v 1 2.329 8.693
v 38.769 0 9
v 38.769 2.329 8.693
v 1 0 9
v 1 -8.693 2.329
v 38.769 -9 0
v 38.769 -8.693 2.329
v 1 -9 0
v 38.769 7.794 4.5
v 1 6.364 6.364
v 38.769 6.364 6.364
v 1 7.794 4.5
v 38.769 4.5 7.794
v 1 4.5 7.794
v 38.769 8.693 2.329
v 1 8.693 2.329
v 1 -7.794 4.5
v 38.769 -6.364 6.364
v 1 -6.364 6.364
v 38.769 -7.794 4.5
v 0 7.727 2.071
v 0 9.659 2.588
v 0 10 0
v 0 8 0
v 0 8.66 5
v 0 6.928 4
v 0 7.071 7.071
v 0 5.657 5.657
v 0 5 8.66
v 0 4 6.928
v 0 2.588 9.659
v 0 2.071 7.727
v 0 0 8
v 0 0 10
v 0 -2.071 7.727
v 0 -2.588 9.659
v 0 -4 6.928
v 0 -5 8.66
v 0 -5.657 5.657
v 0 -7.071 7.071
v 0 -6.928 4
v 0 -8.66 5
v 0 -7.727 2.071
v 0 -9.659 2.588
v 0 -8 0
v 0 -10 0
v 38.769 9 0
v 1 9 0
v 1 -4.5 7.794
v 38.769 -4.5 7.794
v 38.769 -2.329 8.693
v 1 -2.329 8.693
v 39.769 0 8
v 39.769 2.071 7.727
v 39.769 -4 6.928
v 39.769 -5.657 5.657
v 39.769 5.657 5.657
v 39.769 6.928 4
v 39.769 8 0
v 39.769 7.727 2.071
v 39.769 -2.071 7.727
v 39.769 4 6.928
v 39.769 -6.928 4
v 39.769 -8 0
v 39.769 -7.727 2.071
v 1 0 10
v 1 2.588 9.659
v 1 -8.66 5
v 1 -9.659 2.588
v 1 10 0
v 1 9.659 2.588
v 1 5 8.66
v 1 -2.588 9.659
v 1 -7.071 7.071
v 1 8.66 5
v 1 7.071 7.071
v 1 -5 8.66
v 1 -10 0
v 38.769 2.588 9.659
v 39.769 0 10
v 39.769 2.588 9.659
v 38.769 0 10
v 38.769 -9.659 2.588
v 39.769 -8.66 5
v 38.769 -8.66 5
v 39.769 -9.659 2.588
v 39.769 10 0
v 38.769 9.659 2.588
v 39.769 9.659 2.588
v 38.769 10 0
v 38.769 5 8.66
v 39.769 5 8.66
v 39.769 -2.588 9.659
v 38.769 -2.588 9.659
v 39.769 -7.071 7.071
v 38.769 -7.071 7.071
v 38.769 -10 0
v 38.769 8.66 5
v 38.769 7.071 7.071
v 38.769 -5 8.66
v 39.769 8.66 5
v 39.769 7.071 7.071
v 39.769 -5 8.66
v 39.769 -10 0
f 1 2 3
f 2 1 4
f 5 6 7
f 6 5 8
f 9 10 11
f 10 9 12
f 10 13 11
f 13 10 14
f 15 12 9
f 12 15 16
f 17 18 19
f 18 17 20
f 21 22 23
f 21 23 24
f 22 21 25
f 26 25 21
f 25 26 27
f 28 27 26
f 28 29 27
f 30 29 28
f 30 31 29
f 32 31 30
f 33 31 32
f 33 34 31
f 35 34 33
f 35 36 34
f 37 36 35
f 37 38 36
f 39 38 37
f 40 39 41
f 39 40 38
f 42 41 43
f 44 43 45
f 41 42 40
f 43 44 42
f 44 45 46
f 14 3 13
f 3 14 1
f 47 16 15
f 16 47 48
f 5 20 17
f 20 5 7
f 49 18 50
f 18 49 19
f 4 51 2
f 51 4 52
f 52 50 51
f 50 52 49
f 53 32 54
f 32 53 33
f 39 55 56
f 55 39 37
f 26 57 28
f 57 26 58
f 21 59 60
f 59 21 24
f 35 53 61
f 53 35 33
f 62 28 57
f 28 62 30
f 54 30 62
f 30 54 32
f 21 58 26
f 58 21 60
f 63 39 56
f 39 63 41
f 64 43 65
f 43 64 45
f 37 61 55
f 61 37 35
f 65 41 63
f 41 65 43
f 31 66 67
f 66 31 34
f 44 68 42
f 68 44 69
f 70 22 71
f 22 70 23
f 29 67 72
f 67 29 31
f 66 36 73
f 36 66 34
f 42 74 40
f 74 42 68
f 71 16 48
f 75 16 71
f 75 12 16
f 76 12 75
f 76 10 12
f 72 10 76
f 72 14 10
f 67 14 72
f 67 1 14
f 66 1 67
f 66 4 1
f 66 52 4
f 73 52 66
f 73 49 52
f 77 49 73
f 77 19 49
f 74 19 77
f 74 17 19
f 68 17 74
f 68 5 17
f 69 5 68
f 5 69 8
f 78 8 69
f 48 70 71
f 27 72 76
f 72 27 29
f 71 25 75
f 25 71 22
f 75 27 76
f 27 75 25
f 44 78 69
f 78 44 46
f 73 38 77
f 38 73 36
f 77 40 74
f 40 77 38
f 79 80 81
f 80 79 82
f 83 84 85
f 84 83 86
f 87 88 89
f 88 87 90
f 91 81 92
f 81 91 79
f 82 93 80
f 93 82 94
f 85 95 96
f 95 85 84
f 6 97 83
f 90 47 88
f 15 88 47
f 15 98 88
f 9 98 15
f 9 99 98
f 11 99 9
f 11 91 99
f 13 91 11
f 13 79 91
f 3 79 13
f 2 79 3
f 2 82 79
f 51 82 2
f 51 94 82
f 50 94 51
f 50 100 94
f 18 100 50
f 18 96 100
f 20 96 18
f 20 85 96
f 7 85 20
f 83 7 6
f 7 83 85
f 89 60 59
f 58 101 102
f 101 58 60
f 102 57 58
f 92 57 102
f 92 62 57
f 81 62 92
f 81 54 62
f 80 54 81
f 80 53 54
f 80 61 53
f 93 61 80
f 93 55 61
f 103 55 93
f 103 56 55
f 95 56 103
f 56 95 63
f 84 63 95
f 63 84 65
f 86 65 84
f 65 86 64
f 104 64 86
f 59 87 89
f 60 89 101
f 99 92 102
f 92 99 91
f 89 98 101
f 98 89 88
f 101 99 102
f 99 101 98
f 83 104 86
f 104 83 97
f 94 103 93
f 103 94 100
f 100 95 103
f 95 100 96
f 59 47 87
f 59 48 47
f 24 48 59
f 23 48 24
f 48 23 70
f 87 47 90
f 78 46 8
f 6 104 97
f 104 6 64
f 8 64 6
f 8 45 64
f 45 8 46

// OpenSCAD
// file: ../build_environments.scad
// build_environments.scad: modules to build level sections
//

module pool(diameter=10.0, wall_height=2.0, step_width=3.0, connections=[])
{
    difference() {
        union() {
        difference() {
            cylinder(h=0.5,r1=diameter+step_width,r2=diameter+step_width,$fn=48);
            translate([0,0,-0.1])
                cylinder(h=0.7,r1=diameter,r2=diameter,$fn=48);
        }
        difference() {
            cylinder(h=wall_height,r1=diameter+step_width+1.0,r2=diameter+step_width+1.0,$fn=48);
            translate([0,0,-0.1])
                cylinder(h=wall_height+0.2,r1=diameter+step_width,r2=diameter+step_width,$fn=48);
        }
        }
    
        for (c = connections)
        {
            rotate([0,90,0]) {
                angle = atan2(c[1],c[0]);
                rotate([-angle,0,0]) {
                    cylinder(h=diameter+5.0,r1=c[2],r2=c[2],$fn=48);
                }
            }
        }
    }
}

module straight(length=10.0, width=2.0, dy1=0.0, dy2=0.0, dz=0.0)
{
    dims = [0, 0, 0, 0, 0, (dz/length)];
    matrix = [
        [ 1, dims[0], dims[1], 0 ],
        [ dims[2], 1, dims[4], 0 ],
        [ dims[5], dims[3], 1, 0 ],
        [ 0, 0, 0, 1 ]
    ];
    multmatrix(matrix)
    difference() {
        translate([dy1,0,0])
        union() {
            rotate([0,90,0]) {
                difference() {
                    cylinder(h=(length-dy1-dy2),r1=width+1.0,r2=width+1.0,$fn=24);
                    translate([0,0,-0.1])
                        cylinder(h=(length-dy1-dy2+0.2),r1=width,r2=width,$fn=24);
                }
                difference() {
                    cylinder(h=1.0,r1=width+2.0,r2=width+2.0,$fn=24);
                    translate([0,0,-0.1])
                        cylinder(h=1.2,r1=width,r2=width,$fn=24);
                }
                translate([0,0,(length-dy1-dy2)-1.0]) {
                    difference() {
                        cylinder(h=1.0,r1=width+2.0,r2=width+2.0,$fn=24);
                        translate([0,0,-0.1])
                            cylinder(h=1.2,r1=width,r2=width,$fn=24);
                    }
                }
            }
        }
        translate([0,0,-(2*width+4.0)/2])
            cube([3*length,3*length,2*width+4.0],center=true);
    }
}

module curve(p0=[0,0], center=[0,0], dir=1, angle=0.0, width=2.0)
{
    radius = sqrt((p0[0]-center[0])*(p0[0]-center[0]) + (p0[1]-center[1])*(p0[1]-center[1]));
    if (dir == 0) {
        difference() {
            rotate([0,0,-90])
            difference() {
                rotate_extrude(angle = angle, convexity = 10, $fn=32)
                    translate([radius, 0, 0])
                        circle(r = width+1.0,$fn=24);
                rotate([0,0,-1.0])
                    rotate_extrude(angle = angle+2.0, convexity = 10, $fn=32)
                        translate([radius, 0, 0])
                            circle(r = width,$fn=24);
            }
            translate([0,0,-(2*width+4.0)/2])
                cube([5*radius,5*radius,2*width+4.0],center=true);
        }
    }
    else {
        difference() {
            rotate([0,0,90])
            difference() {
                rotate_extrude(angle = -angle, convexity = 10, $fn=32)
                    translate([radius, 0, 0])
                        circle(r = width+1.0,$fn=24);
                rotate([0,0,1.0])
                    rotate_extrude(angle = -angle-2.0, convexity = 10, $fn=32)
                        translate([radius, 0, 0])
                            circle(r = width,$fn=24);
            }
            translate([0,0,-(2*width+4.0)/2])
                cube([5*radius,5*radius,2*width+4.0],center=true);
        }
    }

}

// test pool
//pool(diameter=12.0000, wall_height=3.0000, step_width=3.0000, connections=[[0.0000,-26.0000,2.0000], [23.6074,0.0000,2.0000]]);

// test straight, slope
//straight(length=26.0000, width=2.0000, dy1=11.8322, dy2=6.7082, dz=0.0000);
//straight(length=29.1549, width=12.0000, dy1=0.0000, dy2=0.0000, dz=-15.0000);

// test curve
//curve(p0=[23.6074, 0.0000], center=[23.6074, 5.0000], dir=0, angle=60.1011, width=2.0000);
//curve(p0=[33.6426, 12.4219], center=[37.9771, 9.9295], dir=1, angle=120.4627, width=2.0000);
// main file
use <../build_environments.scad>;
straight(length=39.7687, width=8.0000, dy1=0.0000, dy2=0.0000, dz=0.0000);
